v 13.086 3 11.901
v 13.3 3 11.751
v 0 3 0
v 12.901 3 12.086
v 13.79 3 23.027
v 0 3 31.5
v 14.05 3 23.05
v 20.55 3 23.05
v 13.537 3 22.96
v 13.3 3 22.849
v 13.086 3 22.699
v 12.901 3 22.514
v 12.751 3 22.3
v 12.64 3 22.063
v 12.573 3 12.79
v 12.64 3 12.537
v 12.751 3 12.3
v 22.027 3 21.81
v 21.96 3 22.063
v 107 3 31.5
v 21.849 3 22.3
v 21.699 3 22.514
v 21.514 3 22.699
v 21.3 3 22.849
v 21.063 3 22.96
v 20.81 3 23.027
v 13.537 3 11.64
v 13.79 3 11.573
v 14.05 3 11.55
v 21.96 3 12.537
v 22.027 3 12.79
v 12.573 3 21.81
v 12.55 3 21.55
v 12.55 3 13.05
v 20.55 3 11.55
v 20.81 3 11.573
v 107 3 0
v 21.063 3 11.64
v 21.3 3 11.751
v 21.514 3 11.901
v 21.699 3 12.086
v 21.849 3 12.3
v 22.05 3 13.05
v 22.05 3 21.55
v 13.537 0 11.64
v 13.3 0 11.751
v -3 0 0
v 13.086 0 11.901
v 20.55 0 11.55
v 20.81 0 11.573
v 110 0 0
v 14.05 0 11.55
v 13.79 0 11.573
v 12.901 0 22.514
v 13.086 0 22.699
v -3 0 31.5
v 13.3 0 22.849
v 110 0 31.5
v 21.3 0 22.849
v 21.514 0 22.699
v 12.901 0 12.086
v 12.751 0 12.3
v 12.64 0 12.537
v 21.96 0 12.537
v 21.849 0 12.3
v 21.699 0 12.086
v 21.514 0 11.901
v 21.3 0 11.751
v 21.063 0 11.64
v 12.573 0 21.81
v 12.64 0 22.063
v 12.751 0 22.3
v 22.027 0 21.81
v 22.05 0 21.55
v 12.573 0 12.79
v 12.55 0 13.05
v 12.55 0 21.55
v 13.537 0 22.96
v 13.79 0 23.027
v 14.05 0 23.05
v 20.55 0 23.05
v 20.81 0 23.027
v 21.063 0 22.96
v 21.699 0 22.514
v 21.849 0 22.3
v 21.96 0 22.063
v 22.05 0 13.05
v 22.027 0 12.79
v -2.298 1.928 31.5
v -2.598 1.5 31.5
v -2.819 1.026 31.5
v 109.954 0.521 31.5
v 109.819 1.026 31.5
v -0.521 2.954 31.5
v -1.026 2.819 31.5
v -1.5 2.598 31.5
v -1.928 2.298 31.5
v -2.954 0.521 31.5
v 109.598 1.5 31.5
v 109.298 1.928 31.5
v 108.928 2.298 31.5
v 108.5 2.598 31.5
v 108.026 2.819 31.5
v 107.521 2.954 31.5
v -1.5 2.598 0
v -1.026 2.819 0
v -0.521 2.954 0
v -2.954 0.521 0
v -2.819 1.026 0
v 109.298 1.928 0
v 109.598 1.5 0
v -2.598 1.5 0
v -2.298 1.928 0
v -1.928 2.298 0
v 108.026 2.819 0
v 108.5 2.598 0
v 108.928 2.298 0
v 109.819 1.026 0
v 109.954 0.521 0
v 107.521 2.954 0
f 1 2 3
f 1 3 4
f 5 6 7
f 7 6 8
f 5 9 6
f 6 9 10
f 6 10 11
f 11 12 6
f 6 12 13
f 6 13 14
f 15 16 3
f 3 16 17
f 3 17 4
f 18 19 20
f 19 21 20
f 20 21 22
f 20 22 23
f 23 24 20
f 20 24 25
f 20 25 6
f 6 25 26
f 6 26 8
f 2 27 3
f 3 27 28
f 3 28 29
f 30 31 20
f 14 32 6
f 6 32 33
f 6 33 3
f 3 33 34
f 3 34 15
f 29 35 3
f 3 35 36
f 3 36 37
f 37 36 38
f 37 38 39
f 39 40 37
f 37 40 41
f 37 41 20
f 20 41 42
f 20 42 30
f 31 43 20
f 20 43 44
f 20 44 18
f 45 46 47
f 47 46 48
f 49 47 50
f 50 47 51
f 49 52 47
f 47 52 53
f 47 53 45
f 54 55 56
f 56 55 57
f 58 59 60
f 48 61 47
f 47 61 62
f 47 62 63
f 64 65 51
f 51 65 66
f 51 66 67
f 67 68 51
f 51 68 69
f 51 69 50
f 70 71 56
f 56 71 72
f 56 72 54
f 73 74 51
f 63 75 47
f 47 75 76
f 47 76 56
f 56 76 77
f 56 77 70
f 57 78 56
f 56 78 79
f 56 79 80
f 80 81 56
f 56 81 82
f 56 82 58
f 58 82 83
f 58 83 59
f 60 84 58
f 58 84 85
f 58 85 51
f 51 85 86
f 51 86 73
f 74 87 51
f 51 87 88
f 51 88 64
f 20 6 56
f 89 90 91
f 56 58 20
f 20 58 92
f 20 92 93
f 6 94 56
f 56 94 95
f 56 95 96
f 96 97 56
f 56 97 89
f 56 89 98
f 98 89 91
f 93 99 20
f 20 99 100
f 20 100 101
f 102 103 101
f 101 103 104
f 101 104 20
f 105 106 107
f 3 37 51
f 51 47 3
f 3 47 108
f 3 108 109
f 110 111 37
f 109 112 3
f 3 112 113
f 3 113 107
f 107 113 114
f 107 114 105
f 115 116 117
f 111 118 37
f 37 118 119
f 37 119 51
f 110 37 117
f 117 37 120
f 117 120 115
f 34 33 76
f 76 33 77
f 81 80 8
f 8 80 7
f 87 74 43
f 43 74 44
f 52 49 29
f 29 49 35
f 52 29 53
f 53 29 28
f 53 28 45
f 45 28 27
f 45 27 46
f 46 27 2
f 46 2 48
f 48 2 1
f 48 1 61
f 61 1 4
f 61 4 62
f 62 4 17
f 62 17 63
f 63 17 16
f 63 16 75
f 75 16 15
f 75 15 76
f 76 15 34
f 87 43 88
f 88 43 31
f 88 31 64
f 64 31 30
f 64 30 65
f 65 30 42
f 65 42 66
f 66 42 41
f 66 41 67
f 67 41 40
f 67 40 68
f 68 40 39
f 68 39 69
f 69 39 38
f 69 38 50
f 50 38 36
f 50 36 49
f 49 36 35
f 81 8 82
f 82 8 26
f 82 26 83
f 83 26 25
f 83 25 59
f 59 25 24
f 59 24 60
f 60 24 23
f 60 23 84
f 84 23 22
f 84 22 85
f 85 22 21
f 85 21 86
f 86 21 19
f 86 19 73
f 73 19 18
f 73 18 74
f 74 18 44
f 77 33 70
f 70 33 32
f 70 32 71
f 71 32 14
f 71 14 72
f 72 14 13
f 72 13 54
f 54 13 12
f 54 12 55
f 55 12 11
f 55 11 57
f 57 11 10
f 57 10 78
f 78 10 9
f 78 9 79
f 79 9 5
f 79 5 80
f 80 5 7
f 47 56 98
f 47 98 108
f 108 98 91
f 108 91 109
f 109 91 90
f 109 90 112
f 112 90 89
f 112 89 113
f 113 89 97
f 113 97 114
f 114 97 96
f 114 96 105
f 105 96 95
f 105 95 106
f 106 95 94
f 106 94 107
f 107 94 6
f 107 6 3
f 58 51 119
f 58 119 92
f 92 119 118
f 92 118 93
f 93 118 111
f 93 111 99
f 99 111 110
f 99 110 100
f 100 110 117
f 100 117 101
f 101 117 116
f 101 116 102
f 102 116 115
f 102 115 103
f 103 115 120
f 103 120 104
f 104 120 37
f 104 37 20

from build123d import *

# Parameters (mm, degrees)
SKETCH_1_W                      = 113
SKETCH_1_H                      = 31.5
SKETCH_1_W_2                    = 9.5
SKETCH_1_H_2                    = 11.5
EXTRUDE_1_DEPTH                 = 3
TOOL_D3_R1P5_POWER_CORNERS_R    = 1.5
TOOL_D3_R3_REAR_OUTER_CORNERS_R = 3


with BuildPart() as part:
    # Эскиз1 → Бобышка-Вытянуть1 (new body)
    with BuildSketch(Plane(origin=(0, 0, 0), x_dir=(1, 0, 0), z_dir=(0, 1, 0))):
        with Locations((53.5, -15.75)):
            Rectangle(SKETCH_1_W, SKETCH_1_H)
        with Locations((17.3, -17.3)):
            Rectangle(SKETCH_1_W_2, SKETCH_1_H_2, mode=Mode.SUBTRACT)
    extrude(amount=EXTRUDE_1_DEPTH)

    # tool_D3_R1p5_power_corners
    tool_d3_r1p5_power_corners_edges = [part.edges().sort_by_distance(p)[0] for p in [
        (12.55, 1.5, 11.55),
        (12.55, 1.5, 23.05),
        (22.05, 1.5, 23.05),
        (22.05, 1.5, 11.55),
    ]]
    fillet(tool_d3_r1p5_power_corners_edges, radius=TOOL_D3_R1P5_POWER_CORNERS_R)

    # tool_D3_R3_rear_outer_corners
    tool_d3_r3_rear_outer_corners_edges = [part.edges().sort_by_distance(p)[0] for p in [
        (-3, 3, 15.75),
        (110, 3, 15.75),
    ]]
    fillet(tool_d3_r3_rear_outer_corners_edges, radius=TOOL_D3_R3_REAR_OUTER_CORNERS_R - 0.0001)  # a hair under: the kernel refuses the full size


solid = part.part
